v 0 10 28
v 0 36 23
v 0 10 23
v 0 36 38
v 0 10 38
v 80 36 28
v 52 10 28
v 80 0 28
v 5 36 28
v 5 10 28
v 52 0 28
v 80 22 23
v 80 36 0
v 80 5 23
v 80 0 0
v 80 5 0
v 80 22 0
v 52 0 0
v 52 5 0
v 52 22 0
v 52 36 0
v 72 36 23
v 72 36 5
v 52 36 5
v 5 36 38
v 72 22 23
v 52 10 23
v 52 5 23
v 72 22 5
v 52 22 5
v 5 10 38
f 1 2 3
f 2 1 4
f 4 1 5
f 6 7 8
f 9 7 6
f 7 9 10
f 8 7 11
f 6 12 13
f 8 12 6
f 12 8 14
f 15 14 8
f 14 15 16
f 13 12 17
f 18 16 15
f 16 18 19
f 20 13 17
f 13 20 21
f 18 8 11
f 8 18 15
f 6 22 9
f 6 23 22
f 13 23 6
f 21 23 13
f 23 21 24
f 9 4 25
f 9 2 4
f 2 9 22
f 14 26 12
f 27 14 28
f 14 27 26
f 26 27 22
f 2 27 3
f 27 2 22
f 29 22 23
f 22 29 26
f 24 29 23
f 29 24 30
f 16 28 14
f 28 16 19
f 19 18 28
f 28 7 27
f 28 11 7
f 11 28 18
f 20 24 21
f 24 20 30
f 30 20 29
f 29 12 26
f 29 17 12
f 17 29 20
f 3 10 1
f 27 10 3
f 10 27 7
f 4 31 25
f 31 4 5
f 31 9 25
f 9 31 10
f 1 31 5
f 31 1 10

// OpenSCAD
length = 80;
width = 36;
height = 28;

difference(){
    cube([length,width,height]);
    // middle cube
    translate([0,5,5]){
        cube([length-8, width-5, height-10]);
    }
    // front cube
    translate([0,0,0]){
        cube([length-8-20,width, height-5]);
    }
    // middle middle cube
    translate([0,5,0]){
        cube([length,17,height-5]);
    }
    translate([0,0,0]){
        cube([length-8-20, width-26,height]);
    }       
}

translate([0,10,height]){
    cube([5,width-10,10]);
}
